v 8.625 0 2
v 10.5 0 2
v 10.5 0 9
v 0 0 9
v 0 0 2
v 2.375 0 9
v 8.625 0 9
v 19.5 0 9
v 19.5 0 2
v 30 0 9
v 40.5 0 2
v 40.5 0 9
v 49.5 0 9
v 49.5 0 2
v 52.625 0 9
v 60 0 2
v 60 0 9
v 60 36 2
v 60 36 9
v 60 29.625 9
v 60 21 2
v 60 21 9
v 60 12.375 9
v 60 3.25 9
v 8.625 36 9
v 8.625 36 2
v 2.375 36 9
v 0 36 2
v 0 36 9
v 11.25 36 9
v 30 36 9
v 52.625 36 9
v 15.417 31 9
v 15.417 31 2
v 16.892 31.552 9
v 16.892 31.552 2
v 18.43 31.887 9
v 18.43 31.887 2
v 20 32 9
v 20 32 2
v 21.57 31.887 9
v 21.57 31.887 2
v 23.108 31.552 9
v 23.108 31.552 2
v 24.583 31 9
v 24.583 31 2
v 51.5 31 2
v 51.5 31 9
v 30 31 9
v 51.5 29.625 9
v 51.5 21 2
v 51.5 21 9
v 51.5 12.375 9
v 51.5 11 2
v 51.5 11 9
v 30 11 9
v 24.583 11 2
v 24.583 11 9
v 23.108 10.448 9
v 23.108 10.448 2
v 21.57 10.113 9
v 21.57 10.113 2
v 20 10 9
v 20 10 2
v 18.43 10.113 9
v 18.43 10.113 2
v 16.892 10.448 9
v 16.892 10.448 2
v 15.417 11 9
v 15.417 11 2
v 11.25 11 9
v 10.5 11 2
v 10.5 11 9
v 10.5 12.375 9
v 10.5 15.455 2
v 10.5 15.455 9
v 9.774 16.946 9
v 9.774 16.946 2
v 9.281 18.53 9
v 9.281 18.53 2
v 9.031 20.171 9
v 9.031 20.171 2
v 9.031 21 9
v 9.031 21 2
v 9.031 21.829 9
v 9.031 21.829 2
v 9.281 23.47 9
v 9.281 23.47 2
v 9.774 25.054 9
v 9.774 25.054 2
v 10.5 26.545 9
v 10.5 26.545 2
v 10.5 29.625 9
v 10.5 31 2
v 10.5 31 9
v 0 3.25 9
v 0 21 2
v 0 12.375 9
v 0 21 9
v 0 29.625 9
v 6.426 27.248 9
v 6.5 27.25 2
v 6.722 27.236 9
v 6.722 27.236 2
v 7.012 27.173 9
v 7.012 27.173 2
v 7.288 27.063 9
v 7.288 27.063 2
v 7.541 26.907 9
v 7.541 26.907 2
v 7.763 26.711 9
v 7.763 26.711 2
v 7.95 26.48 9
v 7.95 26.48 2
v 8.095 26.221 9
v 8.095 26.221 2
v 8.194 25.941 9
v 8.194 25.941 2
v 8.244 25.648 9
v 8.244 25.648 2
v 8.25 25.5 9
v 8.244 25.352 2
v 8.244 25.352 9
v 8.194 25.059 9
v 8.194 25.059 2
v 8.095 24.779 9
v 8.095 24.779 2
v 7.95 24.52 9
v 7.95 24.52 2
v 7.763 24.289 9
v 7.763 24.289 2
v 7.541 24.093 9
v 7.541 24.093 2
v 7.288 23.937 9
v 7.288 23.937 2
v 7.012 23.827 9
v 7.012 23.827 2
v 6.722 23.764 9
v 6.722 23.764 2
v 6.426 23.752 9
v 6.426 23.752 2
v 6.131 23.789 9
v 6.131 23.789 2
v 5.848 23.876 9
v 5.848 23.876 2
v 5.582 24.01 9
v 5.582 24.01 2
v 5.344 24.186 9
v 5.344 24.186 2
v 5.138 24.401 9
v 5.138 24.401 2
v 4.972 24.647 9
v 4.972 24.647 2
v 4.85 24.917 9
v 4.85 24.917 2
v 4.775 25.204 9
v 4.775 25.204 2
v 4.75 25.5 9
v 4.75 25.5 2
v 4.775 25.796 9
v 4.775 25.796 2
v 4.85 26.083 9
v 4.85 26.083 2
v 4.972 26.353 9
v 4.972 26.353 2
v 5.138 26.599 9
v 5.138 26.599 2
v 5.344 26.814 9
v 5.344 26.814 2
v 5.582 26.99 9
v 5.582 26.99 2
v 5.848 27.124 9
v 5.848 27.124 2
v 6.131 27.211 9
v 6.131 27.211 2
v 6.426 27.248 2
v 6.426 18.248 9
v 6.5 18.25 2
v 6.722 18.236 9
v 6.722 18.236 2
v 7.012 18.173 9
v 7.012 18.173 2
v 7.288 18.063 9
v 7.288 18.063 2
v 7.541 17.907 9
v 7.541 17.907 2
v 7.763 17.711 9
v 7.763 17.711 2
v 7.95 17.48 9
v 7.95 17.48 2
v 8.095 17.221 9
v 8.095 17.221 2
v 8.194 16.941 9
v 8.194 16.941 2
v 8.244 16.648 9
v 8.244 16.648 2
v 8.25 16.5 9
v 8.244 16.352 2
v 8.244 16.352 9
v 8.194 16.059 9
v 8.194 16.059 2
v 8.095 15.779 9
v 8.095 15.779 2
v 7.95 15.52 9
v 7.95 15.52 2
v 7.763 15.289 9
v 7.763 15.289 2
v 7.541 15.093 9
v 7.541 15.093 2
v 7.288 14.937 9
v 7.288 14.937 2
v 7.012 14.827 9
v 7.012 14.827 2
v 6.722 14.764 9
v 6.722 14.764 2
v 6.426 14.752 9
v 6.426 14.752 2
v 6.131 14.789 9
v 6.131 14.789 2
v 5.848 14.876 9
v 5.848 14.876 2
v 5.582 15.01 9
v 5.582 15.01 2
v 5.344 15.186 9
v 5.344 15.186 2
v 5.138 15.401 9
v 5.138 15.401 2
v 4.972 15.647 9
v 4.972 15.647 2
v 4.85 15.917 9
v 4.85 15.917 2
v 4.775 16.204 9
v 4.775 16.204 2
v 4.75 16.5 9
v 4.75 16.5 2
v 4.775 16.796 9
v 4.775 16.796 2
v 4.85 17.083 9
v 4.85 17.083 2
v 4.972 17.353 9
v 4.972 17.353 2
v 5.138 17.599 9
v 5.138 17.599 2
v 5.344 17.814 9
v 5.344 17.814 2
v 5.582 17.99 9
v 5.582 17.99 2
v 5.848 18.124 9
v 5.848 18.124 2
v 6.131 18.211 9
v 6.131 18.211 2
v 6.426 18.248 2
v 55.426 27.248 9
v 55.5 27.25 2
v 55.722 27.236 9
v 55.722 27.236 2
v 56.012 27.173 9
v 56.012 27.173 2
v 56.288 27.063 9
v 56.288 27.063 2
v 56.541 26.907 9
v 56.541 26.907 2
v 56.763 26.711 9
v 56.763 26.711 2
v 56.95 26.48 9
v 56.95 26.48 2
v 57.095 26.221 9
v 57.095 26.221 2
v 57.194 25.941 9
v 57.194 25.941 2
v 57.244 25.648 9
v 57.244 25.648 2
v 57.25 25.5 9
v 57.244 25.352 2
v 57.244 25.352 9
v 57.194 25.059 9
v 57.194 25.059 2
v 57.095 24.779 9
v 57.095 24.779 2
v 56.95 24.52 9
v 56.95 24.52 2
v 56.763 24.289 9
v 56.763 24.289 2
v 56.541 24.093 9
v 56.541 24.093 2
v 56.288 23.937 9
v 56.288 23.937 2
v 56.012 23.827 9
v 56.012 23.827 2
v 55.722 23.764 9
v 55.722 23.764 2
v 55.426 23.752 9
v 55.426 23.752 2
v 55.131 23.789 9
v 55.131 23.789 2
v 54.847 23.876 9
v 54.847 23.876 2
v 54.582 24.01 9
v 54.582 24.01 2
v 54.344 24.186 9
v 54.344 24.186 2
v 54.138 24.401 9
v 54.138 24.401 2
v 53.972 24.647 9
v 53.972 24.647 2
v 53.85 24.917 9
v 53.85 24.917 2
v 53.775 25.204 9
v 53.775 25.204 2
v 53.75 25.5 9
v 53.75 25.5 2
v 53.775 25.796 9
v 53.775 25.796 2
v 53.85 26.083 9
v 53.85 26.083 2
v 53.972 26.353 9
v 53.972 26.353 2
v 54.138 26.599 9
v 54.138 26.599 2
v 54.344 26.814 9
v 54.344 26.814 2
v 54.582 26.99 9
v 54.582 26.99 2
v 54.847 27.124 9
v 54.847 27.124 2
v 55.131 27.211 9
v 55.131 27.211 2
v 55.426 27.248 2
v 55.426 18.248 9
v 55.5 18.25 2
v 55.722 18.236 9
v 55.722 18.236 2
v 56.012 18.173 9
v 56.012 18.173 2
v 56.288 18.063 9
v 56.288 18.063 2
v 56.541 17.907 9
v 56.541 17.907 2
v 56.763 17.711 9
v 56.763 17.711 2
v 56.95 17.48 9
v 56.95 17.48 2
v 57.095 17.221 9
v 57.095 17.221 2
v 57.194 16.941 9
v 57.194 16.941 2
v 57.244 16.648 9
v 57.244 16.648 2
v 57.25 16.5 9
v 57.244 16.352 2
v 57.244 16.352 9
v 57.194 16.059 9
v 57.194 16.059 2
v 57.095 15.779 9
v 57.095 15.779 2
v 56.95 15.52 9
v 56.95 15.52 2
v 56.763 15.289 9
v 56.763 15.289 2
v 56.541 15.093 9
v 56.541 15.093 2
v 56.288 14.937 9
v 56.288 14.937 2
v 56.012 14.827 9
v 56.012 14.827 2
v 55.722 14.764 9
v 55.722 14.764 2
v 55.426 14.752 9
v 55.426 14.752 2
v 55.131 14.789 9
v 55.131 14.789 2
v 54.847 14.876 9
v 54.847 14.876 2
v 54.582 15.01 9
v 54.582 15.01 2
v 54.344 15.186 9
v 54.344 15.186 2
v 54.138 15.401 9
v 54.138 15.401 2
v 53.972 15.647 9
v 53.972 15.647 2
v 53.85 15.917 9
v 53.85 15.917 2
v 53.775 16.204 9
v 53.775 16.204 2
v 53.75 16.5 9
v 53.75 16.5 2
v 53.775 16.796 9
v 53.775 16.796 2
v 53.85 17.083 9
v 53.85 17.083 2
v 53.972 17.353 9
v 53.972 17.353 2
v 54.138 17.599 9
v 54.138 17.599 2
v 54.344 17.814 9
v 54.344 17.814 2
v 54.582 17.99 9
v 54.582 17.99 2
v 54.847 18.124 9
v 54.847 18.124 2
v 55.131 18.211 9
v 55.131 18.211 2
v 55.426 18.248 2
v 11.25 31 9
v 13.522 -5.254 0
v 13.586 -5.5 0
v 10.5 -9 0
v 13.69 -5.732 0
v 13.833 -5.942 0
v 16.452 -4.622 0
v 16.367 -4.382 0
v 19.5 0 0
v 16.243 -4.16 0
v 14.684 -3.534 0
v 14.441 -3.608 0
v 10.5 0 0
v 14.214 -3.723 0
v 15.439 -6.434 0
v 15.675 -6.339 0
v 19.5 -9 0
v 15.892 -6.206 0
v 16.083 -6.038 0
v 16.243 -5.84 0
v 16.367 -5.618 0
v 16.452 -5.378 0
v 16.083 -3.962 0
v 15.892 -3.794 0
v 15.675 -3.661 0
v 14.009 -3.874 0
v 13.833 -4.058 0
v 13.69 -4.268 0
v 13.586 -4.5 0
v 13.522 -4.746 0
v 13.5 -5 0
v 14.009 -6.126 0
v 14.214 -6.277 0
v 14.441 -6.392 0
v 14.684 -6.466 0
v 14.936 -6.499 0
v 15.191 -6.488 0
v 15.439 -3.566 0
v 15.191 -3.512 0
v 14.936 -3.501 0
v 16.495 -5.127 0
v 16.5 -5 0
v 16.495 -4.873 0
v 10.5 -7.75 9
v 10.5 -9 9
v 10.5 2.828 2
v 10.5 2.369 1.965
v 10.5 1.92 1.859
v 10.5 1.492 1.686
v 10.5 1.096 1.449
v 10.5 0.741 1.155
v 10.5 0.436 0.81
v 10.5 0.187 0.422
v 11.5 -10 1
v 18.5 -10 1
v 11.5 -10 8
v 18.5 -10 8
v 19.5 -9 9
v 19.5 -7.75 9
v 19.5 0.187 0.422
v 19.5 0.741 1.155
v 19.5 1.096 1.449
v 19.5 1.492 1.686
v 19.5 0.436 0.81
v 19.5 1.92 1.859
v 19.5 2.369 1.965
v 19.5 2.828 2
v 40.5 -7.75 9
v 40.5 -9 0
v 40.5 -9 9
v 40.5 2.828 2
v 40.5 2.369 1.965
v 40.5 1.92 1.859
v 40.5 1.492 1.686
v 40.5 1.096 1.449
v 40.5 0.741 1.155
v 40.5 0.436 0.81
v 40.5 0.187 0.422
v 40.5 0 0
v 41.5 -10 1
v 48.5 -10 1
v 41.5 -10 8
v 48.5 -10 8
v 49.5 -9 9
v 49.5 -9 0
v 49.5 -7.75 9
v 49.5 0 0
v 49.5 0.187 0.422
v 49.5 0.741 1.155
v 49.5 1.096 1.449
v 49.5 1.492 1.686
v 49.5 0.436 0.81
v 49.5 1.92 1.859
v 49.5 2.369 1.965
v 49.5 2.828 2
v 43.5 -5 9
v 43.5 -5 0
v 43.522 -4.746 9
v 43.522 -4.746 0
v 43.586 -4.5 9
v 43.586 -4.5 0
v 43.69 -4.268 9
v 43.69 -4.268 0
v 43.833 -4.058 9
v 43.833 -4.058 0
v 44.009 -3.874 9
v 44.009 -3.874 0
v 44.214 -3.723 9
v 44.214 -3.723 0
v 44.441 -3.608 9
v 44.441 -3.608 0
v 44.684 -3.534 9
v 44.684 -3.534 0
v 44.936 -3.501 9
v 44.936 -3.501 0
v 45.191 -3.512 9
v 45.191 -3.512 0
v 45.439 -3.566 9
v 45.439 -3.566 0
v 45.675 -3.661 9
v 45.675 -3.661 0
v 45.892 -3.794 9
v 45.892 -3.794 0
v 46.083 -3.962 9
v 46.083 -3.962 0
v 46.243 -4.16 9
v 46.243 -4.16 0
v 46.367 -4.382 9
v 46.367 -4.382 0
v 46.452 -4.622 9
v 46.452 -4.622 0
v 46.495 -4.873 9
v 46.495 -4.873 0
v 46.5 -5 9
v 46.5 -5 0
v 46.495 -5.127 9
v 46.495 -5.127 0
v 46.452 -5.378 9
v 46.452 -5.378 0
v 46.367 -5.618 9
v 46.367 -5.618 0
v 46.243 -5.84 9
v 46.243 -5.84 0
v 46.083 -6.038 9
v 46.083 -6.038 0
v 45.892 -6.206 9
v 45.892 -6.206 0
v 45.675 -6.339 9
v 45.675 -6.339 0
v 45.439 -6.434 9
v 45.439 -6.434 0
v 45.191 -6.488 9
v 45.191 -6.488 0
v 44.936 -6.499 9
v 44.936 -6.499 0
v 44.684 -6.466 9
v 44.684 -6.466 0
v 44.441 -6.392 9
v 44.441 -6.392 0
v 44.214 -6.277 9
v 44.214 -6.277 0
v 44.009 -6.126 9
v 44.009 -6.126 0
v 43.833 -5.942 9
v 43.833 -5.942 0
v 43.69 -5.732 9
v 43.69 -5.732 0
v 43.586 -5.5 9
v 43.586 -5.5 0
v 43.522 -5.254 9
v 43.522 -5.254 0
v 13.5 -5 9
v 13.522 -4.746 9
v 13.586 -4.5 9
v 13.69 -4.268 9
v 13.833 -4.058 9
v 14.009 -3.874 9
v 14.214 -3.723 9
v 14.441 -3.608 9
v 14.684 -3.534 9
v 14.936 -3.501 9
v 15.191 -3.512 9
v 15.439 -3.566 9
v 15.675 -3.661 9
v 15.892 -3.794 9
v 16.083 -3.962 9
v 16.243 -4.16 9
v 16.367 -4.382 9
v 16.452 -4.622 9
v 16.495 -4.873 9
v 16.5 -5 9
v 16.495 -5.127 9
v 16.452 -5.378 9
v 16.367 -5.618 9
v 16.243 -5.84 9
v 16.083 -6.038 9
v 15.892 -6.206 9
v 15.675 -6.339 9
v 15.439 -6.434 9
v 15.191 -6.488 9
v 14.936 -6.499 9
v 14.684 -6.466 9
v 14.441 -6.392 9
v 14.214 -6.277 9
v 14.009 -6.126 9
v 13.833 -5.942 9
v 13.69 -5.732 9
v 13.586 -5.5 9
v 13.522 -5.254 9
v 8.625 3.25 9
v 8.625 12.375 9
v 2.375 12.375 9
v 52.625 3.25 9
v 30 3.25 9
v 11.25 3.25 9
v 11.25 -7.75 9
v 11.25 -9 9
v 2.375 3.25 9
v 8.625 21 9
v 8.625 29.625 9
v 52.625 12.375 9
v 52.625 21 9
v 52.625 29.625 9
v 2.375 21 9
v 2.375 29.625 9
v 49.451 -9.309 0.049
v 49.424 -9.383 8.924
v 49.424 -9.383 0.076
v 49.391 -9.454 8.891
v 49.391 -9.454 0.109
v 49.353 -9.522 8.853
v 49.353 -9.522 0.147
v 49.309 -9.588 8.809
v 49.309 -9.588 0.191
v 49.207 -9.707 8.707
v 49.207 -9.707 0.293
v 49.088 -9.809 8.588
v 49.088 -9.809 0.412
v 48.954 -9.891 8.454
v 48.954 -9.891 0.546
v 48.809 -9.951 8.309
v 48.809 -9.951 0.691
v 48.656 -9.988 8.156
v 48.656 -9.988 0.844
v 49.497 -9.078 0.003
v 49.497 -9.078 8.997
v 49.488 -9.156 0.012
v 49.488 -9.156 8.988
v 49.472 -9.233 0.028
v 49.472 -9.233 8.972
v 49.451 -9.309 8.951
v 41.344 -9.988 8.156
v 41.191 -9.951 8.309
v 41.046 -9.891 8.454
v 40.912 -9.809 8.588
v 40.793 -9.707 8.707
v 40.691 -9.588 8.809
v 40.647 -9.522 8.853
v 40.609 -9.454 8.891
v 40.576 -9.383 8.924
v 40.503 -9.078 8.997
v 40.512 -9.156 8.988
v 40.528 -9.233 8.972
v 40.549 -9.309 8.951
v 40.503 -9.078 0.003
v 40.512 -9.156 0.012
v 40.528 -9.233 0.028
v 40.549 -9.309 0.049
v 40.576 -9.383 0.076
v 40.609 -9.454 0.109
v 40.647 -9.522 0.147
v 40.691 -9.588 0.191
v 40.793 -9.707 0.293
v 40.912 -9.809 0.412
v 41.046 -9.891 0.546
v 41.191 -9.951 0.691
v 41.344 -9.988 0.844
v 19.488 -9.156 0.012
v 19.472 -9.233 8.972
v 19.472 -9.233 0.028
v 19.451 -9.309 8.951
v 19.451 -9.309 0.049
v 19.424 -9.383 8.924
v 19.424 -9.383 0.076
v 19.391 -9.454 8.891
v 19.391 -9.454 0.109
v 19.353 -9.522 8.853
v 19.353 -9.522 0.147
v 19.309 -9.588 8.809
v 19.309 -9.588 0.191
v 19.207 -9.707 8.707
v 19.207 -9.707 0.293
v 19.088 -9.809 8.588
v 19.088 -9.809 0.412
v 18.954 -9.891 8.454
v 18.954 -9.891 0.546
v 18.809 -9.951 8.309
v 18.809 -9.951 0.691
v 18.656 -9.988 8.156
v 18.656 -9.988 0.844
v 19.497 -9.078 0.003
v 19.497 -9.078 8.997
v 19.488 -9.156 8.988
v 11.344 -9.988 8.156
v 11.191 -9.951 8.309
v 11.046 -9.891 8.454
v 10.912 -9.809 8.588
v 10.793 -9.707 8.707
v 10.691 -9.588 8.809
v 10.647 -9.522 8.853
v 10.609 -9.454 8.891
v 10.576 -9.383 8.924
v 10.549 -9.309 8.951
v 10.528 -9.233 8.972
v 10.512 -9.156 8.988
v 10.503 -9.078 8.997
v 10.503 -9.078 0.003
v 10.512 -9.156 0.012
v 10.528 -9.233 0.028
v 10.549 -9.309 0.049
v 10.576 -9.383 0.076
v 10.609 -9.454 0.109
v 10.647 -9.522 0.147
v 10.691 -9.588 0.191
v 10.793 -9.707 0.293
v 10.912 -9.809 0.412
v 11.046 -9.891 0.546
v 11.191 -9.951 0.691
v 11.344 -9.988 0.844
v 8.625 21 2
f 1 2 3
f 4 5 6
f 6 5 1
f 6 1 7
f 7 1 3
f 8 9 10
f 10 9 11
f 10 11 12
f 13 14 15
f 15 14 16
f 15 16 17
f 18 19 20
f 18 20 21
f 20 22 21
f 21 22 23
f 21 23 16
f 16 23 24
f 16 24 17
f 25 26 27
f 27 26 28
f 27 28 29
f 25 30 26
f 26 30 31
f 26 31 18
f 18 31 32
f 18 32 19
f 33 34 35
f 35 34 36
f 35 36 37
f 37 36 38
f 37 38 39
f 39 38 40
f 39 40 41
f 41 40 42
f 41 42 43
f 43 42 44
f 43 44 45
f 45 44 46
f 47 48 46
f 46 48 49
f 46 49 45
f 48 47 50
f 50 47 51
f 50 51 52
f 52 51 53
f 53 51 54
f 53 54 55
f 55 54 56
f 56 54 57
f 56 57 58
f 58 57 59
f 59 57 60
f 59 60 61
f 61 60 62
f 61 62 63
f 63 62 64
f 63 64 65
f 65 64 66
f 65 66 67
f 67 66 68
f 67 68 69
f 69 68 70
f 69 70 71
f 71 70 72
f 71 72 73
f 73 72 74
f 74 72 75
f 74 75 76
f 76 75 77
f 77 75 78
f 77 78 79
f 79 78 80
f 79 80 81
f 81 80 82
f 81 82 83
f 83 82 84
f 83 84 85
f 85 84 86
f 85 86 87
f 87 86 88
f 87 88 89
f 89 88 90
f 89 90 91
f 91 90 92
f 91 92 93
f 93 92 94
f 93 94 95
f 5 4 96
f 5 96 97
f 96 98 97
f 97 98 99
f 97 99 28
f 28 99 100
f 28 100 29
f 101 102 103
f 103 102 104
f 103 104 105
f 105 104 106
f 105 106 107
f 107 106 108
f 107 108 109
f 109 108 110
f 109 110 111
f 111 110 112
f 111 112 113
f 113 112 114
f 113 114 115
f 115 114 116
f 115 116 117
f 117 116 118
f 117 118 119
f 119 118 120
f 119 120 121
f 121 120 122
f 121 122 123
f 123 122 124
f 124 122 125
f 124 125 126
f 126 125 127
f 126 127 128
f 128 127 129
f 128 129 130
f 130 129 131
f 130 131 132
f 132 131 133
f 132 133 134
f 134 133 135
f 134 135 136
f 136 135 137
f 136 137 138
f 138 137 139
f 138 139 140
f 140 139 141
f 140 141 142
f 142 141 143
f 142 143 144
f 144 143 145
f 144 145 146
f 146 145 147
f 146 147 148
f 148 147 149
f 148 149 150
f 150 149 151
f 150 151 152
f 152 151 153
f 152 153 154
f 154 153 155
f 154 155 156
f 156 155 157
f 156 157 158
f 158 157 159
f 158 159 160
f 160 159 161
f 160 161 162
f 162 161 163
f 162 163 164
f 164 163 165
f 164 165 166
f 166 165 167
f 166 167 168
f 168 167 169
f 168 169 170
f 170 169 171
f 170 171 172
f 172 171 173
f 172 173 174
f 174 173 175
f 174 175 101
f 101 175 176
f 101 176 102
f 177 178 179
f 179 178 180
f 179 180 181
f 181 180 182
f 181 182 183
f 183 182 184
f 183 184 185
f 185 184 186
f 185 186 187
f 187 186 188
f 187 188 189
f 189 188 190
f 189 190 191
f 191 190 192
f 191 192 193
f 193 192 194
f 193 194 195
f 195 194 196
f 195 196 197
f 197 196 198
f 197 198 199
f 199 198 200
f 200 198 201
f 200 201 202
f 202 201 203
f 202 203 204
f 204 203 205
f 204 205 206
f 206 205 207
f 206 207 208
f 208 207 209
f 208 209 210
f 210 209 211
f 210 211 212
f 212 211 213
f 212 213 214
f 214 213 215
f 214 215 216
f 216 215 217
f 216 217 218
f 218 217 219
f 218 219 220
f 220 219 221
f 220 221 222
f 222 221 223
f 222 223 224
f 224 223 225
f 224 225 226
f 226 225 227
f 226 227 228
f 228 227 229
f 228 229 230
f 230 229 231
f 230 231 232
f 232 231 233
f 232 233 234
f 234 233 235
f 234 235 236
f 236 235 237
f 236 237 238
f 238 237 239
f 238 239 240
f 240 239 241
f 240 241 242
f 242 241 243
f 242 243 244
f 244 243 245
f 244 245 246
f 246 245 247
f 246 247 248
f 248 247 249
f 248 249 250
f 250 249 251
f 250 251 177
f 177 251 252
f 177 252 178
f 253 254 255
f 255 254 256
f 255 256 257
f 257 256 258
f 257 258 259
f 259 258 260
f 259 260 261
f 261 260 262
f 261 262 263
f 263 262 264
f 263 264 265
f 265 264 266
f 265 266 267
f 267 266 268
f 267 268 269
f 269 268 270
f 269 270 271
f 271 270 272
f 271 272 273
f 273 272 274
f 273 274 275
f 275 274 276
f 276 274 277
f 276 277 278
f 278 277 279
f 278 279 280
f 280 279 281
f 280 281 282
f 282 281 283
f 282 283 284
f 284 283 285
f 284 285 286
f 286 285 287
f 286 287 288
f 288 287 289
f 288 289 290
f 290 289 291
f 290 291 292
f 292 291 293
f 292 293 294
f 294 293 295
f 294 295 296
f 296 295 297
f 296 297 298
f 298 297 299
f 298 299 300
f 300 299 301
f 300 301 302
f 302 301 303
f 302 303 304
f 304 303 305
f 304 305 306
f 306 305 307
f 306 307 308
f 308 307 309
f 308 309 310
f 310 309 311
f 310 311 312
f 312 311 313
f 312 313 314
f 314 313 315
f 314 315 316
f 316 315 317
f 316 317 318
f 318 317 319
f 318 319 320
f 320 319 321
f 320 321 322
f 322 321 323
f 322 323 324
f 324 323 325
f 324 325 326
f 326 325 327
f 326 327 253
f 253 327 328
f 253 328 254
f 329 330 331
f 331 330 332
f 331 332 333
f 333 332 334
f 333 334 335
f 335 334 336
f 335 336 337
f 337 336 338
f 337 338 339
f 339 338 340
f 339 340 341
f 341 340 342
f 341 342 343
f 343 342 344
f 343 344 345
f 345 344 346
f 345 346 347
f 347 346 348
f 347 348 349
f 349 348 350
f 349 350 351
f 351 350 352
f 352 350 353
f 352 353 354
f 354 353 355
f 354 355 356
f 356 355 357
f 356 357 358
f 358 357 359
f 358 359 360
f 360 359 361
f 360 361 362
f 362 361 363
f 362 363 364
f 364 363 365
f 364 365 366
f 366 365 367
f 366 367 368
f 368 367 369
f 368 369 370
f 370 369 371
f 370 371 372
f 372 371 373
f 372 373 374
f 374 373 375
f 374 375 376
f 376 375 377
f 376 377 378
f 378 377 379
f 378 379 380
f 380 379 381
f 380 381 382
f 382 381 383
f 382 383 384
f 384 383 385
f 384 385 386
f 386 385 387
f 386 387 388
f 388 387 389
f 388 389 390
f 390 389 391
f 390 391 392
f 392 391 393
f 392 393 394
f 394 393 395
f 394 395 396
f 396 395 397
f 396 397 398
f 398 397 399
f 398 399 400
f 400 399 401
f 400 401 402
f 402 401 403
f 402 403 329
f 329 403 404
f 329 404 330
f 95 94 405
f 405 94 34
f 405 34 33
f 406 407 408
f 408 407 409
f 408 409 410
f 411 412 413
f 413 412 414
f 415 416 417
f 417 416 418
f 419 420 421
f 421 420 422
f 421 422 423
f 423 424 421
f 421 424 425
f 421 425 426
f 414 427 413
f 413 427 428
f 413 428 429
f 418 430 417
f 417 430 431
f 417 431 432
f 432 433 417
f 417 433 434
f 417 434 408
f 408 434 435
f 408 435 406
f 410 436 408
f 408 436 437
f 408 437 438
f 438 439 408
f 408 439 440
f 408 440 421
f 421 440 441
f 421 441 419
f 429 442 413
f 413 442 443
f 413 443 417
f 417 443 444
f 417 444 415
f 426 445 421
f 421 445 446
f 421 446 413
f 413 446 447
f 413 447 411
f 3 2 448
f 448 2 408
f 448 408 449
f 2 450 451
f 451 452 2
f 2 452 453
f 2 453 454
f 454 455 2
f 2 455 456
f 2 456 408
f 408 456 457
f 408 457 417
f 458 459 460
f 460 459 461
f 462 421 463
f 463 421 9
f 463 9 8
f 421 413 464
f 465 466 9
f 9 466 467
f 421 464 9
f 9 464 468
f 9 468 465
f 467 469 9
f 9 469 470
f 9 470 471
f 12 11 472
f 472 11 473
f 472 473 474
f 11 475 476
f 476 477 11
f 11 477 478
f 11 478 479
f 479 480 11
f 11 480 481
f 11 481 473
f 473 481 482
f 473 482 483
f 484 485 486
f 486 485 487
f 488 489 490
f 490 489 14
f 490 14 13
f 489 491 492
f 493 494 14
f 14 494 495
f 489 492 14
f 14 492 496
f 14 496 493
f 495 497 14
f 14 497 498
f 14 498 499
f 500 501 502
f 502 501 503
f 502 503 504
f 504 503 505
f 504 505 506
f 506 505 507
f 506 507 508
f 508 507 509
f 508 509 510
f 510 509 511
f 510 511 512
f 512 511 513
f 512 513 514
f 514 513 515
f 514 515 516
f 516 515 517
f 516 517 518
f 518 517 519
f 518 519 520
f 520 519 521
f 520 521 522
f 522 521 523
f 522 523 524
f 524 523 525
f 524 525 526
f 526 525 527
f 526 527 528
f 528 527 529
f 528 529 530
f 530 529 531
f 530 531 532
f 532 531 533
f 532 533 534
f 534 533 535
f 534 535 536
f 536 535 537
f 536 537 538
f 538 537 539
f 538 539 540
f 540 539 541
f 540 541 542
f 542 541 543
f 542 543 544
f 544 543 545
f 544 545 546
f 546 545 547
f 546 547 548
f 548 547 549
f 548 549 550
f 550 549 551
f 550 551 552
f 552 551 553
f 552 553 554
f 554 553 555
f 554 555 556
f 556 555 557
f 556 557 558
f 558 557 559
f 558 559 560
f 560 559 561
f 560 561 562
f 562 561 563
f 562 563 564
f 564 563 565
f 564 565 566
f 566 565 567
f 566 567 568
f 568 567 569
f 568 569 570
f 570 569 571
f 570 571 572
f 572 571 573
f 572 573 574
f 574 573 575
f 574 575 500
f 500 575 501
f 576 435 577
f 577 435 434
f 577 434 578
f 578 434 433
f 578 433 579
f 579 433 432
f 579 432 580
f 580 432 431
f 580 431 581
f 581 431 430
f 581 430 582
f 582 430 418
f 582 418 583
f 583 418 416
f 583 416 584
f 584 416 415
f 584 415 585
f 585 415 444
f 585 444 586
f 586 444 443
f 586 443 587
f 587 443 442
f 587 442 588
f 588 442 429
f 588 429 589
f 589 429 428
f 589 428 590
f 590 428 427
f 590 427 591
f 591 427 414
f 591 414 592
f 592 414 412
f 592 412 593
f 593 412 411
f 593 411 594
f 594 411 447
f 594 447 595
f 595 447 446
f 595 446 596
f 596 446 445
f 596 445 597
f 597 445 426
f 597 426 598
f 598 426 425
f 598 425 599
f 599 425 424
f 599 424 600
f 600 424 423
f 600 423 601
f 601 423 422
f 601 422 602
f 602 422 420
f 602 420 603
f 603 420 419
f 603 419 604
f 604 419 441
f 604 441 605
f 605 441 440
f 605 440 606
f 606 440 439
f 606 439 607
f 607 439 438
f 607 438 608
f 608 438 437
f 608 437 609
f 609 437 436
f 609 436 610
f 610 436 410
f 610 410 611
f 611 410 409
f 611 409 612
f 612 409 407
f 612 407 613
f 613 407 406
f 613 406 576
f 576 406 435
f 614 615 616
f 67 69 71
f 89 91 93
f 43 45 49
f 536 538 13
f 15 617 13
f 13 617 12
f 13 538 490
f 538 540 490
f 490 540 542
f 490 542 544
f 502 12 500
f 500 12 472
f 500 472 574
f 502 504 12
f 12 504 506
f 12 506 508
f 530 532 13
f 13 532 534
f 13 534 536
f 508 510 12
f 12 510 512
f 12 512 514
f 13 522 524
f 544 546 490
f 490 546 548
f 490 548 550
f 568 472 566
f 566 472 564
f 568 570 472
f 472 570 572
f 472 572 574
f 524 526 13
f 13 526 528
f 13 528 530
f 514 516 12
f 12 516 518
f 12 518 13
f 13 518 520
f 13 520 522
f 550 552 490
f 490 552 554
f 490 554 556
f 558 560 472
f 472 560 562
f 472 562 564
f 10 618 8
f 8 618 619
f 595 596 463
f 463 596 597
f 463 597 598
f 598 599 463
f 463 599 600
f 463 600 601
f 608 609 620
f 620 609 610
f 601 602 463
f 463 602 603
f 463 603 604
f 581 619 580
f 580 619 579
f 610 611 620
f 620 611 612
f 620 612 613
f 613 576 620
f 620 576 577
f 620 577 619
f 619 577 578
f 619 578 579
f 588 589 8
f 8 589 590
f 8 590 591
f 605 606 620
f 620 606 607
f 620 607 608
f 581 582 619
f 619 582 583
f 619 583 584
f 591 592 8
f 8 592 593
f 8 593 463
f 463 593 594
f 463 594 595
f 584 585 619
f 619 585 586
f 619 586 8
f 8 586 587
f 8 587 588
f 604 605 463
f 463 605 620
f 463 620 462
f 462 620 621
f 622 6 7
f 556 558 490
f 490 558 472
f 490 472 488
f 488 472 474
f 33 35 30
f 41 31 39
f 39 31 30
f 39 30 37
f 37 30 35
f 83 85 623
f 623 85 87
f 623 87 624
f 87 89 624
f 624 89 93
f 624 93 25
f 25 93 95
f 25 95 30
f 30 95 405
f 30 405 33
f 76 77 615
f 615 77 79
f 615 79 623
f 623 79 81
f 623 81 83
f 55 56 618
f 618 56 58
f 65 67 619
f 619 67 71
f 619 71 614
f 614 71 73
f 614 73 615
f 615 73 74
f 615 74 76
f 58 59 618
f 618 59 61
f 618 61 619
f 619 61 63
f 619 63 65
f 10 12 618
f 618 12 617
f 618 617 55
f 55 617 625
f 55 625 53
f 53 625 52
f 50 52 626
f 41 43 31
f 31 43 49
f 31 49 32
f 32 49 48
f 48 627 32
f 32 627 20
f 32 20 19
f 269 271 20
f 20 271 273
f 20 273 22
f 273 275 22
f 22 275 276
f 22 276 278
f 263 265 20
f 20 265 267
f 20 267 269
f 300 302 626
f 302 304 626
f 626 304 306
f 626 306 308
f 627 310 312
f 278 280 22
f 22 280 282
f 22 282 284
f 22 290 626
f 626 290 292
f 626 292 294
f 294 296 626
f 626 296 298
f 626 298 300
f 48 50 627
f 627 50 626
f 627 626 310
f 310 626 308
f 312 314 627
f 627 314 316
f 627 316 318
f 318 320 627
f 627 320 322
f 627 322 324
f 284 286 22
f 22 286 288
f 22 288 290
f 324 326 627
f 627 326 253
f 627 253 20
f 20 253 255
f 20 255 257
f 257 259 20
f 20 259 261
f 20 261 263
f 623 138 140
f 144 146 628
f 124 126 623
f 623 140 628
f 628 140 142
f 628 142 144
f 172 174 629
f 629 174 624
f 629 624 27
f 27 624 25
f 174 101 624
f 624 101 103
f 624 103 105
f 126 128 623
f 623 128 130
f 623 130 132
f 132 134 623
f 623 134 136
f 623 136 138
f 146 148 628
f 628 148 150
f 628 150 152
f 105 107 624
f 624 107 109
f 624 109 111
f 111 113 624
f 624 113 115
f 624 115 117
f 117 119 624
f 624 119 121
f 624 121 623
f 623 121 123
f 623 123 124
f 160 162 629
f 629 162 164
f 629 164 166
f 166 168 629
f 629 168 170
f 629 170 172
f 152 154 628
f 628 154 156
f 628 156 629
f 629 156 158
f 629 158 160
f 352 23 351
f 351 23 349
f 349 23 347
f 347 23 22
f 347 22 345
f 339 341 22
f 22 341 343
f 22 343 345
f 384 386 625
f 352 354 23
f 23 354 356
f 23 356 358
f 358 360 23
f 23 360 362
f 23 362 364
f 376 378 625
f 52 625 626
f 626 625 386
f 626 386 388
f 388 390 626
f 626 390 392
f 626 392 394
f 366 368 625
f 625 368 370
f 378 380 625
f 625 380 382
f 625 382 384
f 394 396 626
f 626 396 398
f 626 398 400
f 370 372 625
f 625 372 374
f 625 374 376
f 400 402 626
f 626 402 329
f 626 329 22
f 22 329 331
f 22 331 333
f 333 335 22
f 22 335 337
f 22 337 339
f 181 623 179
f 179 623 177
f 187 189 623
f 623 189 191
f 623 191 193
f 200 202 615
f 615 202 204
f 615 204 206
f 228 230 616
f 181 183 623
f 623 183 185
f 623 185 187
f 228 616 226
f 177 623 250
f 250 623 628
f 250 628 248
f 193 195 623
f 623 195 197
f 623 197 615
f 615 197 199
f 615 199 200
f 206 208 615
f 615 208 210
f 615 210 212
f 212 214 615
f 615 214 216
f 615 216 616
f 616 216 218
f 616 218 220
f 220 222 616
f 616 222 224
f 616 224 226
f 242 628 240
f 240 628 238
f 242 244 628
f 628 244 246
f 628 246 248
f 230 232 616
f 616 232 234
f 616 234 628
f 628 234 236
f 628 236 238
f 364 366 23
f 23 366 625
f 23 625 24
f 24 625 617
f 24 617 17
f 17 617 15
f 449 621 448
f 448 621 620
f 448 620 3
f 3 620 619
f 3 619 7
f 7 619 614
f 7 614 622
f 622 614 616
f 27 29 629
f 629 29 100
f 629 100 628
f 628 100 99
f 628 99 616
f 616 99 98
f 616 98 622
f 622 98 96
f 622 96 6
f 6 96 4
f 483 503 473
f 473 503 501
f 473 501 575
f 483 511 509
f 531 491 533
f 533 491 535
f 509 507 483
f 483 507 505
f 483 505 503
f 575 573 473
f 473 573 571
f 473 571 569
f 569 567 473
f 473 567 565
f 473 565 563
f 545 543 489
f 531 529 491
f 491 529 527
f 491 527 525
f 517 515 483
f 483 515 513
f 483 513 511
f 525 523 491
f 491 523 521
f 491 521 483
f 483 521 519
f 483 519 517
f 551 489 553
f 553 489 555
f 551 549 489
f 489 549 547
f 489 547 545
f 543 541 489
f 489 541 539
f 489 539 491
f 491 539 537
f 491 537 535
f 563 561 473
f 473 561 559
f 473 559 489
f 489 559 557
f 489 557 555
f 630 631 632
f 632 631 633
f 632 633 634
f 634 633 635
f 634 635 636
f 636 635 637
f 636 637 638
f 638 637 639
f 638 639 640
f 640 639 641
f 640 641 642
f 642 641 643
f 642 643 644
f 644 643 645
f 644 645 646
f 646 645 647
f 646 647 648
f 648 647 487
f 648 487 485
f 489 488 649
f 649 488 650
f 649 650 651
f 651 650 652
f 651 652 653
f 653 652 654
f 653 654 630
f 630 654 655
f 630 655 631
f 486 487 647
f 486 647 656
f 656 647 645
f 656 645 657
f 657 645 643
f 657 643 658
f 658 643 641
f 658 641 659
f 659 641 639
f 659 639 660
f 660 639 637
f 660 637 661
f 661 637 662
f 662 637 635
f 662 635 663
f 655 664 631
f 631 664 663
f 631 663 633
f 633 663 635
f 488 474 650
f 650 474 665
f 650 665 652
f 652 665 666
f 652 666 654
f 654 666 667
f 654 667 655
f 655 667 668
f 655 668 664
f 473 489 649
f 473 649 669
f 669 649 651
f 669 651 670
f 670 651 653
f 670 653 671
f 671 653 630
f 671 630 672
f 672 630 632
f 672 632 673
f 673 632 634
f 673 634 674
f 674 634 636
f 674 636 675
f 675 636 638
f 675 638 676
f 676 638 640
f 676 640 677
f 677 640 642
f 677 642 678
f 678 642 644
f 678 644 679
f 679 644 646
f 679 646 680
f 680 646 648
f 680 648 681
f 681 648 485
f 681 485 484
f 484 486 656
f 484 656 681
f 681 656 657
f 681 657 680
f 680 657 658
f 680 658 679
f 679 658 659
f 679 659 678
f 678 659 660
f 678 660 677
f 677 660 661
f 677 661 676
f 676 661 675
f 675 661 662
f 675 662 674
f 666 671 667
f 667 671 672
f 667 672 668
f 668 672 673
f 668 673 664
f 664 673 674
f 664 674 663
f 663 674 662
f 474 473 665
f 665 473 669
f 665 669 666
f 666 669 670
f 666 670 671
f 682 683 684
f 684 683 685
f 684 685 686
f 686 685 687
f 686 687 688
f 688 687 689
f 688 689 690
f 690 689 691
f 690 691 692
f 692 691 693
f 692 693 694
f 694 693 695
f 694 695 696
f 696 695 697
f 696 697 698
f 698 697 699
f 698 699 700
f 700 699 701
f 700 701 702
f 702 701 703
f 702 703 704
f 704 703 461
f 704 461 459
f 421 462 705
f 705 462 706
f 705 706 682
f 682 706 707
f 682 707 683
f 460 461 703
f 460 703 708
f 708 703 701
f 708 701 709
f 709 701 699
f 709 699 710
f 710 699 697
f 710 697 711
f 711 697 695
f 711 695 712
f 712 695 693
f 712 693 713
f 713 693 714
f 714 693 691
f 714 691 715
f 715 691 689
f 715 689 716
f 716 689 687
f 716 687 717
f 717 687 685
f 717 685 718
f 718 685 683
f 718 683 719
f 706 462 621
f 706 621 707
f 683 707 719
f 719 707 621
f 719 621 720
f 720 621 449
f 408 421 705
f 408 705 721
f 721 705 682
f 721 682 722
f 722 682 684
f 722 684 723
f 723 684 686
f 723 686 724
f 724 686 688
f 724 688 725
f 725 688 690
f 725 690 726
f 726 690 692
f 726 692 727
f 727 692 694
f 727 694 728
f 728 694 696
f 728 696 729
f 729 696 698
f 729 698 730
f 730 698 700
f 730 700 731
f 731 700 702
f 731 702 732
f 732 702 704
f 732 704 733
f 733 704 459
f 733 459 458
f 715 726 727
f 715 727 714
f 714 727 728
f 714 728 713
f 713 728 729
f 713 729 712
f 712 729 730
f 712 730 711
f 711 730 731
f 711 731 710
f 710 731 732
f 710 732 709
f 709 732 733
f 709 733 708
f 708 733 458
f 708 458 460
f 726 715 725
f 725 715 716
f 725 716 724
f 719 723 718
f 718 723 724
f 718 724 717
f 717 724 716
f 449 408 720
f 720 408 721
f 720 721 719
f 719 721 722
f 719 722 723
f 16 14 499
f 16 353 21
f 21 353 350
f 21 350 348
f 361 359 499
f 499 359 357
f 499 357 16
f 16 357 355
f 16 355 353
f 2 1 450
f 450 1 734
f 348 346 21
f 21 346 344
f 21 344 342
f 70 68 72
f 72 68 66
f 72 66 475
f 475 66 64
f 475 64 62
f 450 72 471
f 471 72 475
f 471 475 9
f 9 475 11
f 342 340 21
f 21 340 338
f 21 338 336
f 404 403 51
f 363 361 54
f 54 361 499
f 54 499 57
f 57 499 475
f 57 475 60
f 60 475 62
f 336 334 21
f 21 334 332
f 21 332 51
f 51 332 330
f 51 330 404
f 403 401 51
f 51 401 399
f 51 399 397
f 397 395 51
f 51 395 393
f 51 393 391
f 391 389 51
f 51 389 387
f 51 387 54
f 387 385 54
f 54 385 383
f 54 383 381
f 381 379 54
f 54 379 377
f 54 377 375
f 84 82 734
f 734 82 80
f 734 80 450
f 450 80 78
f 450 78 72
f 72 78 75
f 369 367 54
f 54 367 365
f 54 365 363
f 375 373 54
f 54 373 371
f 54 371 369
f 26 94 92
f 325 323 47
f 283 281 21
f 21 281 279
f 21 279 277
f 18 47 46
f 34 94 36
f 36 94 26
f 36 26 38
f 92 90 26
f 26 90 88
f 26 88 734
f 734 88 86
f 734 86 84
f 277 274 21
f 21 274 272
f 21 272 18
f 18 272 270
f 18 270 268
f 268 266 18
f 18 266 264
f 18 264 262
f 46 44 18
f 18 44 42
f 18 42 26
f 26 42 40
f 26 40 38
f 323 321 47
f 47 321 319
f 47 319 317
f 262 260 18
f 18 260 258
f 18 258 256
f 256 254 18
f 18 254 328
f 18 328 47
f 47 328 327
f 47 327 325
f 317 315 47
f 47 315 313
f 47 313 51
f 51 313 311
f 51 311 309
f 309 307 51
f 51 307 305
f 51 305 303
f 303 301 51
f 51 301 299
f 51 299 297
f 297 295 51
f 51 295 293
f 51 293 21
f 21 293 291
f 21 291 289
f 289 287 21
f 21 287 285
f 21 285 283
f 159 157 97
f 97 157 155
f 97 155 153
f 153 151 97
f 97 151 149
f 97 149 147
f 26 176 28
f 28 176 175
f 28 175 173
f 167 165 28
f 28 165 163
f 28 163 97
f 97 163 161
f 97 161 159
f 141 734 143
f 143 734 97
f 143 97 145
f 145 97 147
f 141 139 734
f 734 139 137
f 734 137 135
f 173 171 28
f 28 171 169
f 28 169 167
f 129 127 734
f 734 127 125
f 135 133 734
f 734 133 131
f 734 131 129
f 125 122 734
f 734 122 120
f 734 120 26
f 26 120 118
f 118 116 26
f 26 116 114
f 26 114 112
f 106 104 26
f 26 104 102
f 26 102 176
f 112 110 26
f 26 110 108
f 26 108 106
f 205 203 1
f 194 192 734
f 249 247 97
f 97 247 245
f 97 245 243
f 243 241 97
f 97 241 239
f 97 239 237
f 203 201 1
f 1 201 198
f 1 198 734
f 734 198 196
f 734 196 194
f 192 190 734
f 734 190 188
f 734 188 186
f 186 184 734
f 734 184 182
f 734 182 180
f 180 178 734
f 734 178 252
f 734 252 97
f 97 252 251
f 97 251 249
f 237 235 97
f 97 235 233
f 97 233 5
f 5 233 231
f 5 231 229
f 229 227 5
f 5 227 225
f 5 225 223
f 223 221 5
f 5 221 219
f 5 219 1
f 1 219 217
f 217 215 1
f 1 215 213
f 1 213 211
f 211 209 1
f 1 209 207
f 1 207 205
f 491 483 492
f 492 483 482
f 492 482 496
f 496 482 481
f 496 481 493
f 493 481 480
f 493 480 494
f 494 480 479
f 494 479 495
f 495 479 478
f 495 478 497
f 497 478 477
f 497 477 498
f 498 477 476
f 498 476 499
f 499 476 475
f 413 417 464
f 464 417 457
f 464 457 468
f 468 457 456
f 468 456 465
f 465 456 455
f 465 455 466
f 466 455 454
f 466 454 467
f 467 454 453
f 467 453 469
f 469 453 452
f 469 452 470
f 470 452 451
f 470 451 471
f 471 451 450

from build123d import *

# Parameters (mm, degrees)
CROQUIS1_R              = 1.75
CROQUIS1_R_2            = 1.5
SALIENTE_EXTRUIR1_DEPTH = 9
REDONDEO1_R             = 1
CROQUIS2_W              = 2
CROQUIS2_H              = 36
CORTAR_EXTRUIR1_DEPTH   = 71.547856098
REDONDEO2_R             = 3


with BuildPart() as part:
    # Croquis1 → Saliente-Extruir1 (new body)
    with BuildSketch(Plane.XY):
        Polygon((0, 36), (0, 0), (10.5, 0), (10.5, -10), (19.5, -10), (19.5, 0), (40.5, 0), (40.5, -10), (49.5, -10), (49.5, 0), (60, 0), (60, 36), align=None)
        with Locations((6.5, 16.5)):
            Circle(CROQUIS1_R, mode=Mode.SUBTRACT)
        with Locations((6.5, 25.5)):
            Circle(CROQUIS1_R, mode=Mode.SUBTRACT)
        with BuildLine():
            Line((10.5, 26.545268253), (10.5, 31))
            Line((10.5, 31), (15.417424305, 31))
            ThreePointArc((15.417424305, 31), (20, 32), (24.582575695, 31))
            Line((24.582575695, 31), (51.5, 31))
            Line((51.5, 31), (51.5, 11))
            Line((51.5, 11), (24.582575695, 11))
            ThreePointArc((24.582575695, 11), (20, 10), (15.417424305, 11))
            Line((15.417424305, 11), (10.5, 11))
            Line((10.5, 11), (10.5, 15.454731747))
            ThreePointArc((10.5, 15.454731747), (9, 21), (10.5, 26.545268253))
        make_face(mode=Mode.SUBTRACT)
        with Locations((55.5, 16.5)):
            Circle(CROQUIS1_R, mode=Mode.SUBTRACT)
        with Locations((55.5, 25.5)):
            Circle(CROQUIS1_R, mode=Mode.SUBTRACT)
        with Locations((15, -5)):
            Circle(CROQUIS1_R_2, mode=Mode.SUBTRACT)
        with Locations((45, -5)):
            Circle(CROQUIS1_R_2, mode=Mode.SUBTRACT)
    extrude(amount=SALIENTE_EXTRUIR1_DEPTH)

    # Redondeo1
    redondeo1_edges = [part.edges().sort_by_distance(p)[0] for p in [
        (45, -10, 0),
        (15, -10, 0),
        (49.5, -10, 4.5),
        (40.5, -10, 4.5),
        (19.5, -10, 4.5),
        (10.5, -10, 4.5),
        (15, -10, 9),
        (45, -10, 9),
    ]]
    fillet(redondeo1_edges, radius=REDONDEO1_R)

    # Croquis2 → Cortar-Extruir1 (cut, through all)
    with BuildSketch(Plane.ZY):
        with Locations((1, 18)):
            Rectangle(CROQUIS2_W, CROQUIS2_H)
    extrude(amount=-CORTAR_EXTRUIR1_DEPTH, mode=Mode.SUBTRACT)

    # Redondeo2
    # the kernel refuses this fillet: 3 mm, written as the material it adds along each edge
    with BuildSketch(Plane(origin=(10.5, 0, 2), x_dir=(0, 0, -1), z_dir=(1, 0, 0))) as redondeo2_piece_1:
        with BuildLine():
            CenterArc((3, 2.828427125), REDONDEO2_R, 180, 70.528779366)
            Line((0, 2.828427125), (0, 0))
            Line((0, 0), (2, 0))
        make_face()
    extrude(amount=9)
    with BuildSketch(Plane(origin=(40.5, 0, 2), x_dir=(0, 1, 0), z_dir=(1, 0, 0))) as redondeo2_piece_2:
        with BuildLine():
            CenterArc((2.828427125, -3), REDONDEO2_R, 90, 70.528779366)
            Line((0, -2), (0, 0))
            Line((0, 0), (2.828427125, 0))
        make_face()
    extrude(amount=9)


solid = part.part
